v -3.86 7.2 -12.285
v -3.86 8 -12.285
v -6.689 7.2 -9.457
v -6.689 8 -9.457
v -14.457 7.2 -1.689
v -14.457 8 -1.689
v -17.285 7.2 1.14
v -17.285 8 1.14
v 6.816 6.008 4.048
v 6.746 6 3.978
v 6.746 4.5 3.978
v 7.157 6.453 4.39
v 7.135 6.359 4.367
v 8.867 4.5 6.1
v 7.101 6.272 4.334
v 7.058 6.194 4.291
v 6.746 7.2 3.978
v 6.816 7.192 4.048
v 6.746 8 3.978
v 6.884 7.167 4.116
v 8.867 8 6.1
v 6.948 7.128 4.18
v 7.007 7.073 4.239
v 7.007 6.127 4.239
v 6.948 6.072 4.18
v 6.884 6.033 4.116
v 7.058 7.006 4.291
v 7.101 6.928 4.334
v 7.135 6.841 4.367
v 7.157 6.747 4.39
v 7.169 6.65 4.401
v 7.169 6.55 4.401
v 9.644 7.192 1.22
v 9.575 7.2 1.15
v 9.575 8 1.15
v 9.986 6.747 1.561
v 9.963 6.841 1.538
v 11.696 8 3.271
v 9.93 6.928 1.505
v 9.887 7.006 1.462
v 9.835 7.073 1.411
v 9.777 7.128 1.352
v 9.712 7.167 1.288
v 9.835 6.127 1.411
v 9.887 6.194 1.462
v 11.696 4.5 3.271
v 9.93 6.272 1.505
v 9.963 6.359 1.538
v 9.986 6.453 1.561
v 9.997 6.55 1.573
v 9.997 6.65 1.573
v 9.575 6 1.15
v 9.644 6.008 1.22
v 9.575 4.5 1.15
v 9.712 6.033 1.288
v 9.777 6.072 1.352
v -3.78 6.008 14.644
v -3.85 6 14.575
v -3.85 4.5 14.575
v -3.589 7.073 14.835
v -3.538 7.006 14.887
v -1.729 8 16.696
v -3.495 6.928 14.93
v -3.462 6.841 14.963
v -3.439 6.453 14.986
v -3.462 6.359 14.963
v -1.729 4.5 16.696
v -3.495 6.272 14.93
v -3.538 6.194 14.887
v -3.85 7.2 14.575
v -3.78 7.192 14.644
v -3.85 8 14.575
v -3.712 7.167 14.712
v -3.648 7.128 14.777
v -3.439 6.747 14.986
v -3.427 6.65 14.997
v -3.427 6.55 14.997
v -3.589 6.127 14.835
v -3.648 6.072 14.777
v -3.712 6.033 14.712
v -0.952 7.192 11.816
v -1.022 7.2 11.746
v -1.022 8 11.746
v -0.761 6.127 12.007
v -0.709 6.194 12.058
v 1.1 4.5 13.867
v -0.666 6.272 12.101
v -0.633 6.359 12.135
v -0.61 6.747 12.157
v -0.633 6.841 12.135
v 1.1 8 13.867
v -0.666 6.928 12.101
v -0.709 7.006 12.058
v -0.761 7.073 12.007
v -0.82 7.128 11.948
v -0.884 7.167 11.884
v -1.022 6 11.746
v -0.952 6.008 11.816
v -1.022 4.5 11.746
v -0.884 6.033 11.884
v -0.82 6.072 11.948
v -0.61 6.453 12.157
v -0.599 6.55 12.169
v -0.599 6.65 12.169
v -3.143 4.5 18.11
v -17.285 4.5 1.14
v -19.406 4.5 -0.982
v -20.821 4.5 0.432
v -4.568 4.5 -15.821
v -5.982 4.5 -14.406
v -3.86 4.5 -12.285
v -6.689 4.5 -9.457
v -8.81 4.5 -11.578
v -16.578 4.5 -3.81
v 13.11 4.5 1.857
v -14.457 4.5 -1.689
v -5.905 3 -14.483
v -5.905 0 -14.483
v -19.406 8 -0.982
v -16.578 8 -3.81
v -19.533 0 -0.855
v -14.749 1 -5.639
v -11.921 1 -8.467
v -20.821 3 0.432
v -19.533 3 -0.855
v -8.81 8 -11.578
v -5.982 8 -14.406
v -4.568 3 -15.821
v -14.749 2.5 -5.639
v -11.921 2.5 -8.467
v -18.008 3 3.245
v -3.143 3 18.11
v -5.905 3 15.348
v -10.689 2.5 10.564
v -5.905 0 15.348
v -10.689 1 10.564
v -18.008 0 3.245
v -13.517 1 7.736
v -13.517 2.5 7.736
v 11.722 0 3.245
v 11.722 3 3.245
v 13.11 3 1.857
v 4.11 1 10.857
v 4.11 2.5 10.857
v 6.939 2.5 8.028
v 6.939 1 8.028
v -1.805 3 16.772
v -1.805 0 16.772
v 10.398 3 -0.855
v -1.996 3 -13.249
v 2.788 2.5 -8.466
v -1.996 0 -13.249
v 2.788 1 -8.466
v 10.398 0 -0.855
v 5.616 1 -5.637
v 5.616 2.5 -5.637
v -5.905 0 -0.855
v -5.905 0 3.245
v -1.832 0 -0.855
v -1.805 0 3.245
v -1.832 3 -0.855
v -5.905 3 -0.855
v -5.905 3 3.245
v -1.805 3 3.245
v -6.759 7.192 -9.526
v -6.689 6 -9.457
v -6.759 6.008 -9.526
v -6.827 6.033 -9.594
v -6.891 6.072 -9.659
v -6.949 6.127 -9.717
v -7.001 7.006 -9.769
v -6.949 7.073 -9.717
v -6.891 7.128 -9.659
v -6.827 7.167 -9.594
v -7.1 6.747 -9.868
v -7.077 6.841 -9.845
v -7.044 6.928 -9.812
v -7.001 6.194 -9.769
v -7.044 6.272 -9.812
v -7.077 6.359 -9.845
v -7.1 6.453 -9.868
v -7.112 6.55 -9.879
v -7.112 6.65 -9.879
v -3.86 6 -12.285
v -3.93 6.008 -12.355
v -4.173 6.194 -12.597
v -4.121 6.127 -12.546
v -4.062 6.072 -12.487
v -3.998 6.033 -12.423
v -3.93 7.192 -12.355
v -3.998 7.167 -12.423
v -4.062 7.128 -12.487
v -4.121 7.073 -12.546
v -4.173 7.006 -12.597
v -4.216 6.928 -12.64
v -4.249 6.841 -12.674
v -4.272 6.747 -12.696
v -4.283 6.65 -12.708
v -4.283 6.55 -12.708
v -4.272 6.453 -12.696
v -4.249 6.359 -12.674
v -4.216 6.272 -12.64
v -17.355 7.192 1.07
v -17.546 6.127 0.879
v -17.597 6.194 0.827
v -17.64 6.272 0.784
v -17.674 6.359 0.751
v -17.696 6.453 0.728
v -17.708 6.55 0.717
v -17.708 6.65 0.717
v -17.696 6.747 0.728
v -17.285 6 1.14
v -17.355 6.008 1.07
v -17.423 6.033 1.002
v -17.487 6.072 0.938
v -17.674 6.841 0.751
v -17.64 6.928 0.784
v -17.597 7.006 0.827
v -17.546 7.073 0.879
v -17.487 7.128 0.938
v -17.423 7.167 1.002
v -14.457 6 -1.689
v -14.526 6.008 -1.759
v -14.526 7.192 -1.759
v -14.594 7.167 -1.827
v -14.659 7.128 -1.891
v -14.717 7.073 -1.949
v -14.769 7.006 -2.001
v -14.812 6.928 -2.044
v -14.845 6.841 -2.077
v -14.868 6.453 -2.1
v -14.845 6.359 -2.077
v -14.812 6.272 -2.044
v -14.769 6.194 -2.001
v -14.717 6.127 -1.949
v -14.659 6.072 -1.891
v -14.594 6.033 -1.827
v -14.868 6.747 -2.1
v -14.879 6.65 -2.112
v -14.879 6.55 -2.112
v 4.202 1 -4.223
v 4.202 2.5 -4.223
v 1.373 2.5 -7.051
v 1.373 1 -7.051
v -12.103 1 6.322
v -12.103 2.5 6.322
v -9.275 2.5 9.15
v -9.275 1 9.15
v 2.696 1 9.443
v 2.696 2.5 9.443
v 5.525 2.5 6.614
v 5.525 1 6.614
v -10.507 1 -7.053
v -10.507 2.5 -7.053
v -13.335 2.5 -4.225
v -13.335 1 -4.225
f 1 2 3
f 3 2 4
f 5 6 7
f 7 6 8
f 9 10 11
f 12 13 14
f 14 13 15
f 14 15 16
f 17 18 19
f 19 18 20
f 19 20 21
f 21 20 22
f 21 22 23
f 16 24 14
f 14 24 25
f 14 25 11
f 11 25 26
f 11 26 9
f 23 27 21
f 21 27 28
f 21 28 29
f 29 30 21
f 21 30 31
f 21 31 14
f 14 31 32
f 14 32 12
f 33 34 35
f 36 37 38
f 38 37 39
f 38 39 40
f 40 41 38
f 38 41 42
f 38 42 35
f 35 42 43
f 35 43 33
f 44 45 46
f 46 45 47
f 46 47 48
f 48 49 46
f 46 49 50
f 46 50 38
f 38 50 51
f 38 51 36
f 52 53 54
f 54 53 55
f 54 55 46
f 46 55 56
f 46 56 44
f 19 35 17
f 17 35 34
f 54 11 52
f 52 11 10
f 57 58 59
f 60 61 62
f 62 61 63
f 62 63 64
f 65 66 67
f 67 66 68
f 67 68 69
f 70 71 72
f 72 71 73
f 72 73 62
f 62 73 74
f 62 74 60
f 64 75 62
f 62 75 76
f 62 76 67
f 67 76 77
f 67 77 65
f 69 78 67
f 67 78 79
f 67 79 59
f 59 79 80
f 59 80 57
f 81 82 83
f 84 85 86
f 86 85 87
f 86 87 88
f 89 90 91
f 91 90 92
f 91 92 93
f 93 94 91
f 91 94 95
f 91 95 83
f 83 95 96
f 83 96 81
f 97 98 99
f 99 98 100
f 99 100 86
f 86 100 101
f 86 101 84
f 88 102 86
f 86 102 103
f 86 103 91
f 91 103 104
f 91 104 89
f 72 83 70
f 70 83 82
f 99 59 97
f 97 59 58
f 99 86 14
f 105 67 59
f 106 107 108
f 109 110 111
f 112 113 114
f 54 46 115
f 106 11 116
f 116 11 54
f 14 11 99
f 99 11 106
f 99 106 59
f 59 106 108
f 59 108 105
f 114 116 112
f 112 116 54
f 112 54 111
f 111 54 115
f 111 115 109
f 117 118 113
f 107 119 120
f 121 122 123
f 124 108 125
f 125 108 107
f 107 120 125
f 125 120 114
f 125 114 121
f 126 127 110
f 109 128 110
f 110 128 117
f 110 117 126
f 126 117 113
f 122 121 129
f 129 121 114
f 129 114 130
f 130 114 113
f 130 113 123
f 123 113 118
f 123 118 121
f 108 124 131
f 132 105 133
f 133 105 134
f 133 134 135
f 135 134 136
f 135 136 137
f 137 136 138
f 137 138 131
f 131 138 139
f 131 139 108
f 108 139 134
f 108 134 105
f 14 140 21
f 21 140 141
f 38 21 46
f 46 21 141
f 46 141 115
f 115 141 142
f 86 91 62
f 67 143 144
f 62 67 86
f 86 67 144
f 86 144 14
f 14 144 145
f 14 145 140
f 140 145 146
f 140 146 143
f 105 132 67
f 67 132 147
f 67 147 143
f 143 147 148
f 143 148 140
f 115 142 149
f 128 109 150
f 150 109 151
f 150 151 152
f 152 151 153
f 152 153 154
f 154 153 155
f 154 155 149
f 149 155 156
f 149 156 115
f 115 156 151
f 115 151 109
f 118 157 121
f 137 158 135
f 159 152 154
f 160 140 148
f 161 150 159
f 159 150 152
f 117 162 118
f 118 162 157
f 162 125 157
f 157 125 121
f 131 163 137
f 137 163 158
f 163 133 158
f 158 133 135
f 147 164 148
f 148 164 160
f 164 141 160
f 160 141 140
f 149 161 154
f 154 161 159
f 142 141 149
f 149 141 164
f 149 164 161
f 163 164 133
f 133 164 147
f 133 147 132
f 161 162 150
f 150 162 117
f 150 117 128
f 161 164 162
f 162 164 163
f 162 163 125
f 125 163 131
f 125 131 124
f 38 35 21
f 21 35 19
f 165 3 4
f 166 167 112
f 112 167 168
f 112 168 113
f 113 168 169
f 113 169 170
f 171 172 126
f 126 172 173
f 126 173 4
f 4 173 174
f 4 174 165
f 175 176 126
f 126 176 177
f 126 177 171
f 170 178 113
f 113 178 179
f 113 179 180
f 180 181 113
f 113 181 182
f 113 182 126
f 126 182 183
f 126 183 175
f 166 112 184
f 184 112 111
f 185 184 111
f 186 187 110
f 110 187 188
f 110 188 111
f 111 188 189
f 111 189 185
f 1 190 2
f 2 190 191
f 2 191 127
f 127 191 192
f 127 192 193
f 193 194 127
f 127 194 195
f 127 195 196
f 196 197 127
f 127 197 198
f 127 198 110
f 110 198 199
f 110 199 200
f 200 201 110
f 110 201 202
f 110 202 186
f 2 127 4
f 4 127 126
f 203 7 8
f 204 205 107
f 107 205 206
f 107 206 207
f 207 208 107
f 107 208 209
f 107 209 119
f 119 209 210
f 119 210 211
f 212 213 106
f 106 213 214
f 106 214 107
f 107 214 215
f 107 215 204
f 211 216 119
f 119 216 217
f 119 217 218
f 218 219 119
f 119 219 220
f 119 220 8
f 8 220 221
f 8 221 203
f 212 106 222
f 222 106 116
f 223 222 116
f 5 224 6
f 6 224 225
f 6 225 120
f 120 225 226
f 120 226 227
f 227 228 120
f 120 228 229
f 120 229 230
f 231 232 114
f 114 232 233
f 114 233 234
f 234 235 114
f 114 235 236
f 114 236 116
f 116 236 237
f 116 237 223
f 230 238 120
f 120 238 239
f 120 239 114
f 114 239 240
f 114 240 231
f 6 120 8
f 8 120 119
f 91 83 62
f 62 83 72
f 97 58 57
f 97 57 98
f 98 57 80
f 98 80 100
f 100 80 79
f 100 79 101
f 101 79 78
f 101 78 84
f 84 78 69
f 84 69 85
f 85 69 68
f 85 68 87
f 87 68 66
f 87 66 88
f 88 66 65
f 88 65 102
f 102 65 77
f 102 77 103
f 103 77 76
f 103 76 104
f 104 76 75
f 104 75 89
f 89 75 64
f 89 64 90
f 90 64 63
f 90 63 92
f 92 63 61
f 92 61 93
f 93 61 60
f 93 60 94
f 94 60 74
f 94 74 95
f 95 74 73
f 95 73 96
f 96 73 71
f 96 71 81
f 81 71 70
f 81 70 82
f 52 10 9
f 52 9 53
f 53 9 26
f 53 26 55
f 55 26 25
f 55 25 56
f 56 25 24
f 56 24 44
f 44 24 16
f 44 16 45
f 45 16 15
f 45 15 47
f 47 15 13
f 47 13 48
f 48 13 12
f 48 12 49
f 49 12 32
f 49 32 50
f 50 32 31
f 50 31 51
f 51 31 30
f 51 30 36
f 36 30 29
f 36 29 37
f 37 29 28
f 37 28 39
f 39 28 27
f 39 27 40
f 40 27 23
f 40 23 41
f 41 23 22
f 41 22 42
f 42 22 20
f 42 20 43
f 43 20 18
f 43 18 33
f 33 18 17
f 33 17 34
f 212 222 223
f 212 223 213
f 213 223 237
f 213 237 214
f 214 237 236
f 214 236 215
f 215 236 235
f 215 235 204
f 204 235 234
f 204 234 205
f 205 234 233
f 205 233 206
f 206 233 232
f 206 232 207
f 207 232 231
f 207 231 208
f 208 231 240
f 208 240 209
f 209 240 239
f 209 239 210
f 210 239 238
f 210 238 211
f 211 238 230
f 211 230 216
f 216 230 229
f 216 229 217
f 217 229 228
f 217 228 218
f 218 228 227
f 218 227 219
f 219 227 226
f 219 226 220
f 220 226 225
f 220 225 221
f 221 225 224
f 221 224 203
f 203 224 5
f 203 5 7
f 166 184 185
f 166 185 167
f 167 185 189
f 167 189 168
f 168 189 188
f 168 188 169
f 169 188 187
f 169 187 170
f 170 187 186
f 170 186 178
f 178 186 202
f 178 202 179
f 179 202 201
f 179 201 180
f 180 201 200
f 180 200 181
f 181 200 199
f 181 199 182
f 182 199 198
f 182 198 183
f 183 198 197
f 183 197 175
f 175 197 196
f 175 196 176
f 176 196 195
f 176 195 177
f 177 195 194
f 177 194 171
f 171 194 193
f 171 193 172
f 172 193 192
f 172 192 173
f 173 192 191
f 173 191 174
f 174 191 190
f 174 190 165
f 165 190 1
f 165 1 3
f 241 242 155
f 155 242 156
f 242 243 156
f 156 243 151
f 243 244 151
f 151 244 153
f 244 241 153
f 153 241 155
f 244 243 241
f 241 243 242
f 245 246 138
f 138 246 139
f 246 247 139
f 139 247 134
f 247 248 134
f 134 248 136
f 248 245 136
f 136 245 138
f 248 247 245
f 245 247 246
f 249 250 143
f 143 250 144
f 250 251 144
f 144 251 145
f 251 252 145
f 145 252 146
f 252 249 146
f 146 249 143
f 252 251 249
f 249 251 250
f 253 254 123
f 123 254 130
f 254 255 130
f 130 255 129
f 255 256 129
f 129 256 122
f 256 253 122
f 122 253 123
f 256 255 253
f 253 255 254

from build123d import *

# Parameters (mm, degrees)
BOSS_EXTRUDE2_DEPTH     = 4.5
CUT_EXTRUDE1_DEPTH      = 3
BOSS_EXTRUDE3_DEPTH     = 3.5
CUT_EXTRUDE2_DEPTH      = 15.5
CUT_EXTRUDE2_DEPTH_BACK = 34.485281374
CUT_EXTRUDE5_DEPTH      = 34.485281374
SKETCH10_W              = 4
SKETCH10_H              = 1.5
CUT_EXTRUDE6_DEPTH      = 2
SKETCH11_W              = 4
SKETCH11_H              = 1.5
CUT_EXTRUDE7_DEPTH      = 2
SKETCH12_W              = 4
SKETCH12_H              = 1.5
CUT_EXTRUDE8_DEPTH      = 2
SKETCH13_W              = 4
SKETCH13_H              = 1.5
CUT_EXTRUDE9_DEPTH      = 2


with BuildPart() as part:
    # Sketch2 → Boss-Extrude2 (new body)
    with BuildSketch(Plane(origin=(0, 0, 0), x_dir=(1, 0, 0), z_dir=(0, 1, 0))):
        Polygon((-4.567545122, 15.820593449), (13.110124407, -1.85707608), (-3.14292392, -18.110124407), (-20.820593449, -0.432454878), align=None)
    extrude(amount=BOSS_EXTRUDE2_DEPTH)

    # Sketch4 → Cut-Extrude1 (cut)
    with BuildSketch(Plane(origin=(0, 0, 0), x_dir=(1, 0, 0), z_dir=(0, 1, 0))):
        Polygon((-18.008282848, -3.244765479), (-5.905234521, -3.244765479), (-5.905234521, -15.347813806), (-3.14292392, -18.110124407), (-1.805234521, -16.772435009), (-1.805234521, -3.244765479), (11.722435009, -3.244765479), (13.110124407, -1.85707608), (10.397813806, 0.855234521), (-1.832165216, 0.855234521), (-1.99606638, 13.249114707), (-4.567545122, 15.820593449), (-5.905234521, 14.482904051), (-5.905234521, 0.855234521), (-19.532904051, 0.855234521), (-20.820593449, -0.432454878), align=None)
    extrude(amount=CUT_EXTRUDE1_DEPTH, mode=Mode.SUBTRACT)

    # Sketch5 → Boss-Extrude3 (add)
    with BuildSketch(Plane(origin=(0, 4.5, 0), x_dir=(1, 0, 0), z_dir=(0, 1, 0))):
        Polygon((8.86748372, -6.099716767), (11.695910845, -3.271289643), (9.574590502, -1.149969299), (6.746163377, -3.978396424), align=None)
        Polygon((-6.688865466, 9.456632419), (-3.860438341, 12.285059543), (-5.981758685, 14.406379887), (-8.810185809, 11.577952762), align=None)
        Polygon((-17.285059543, -1.139561659), (-14.456632419, 1.688865466), (-16.577952762, 3.810185809), (-19.406379887, 0.981758685), align=None)
        Polygon((-1.728710357, -16.695910845), (1.099716767, -13.86748372), (-1.021603576, -11.746163377), (-3.850030701, -14.574590502), align=None)
    extrude(amount=BOSS_EXTRUDE3_DEPTH)

    # Sketch6 → Cut-Extrude2 (cut, two sides)
    with BuildSketch(Plane(origin=(4.212310601, 0, -4.212310601), x_dir=(-0.707106781, 0, -0.707106781), z_dir=(0.707106781, 0, -0.707106781))) as cut_extrude2_sk:
        with BuildLine():
            Line((-7.58340896, 6), (-7.58340896, 7.2))
            ThreePointArc((-7.58340896, 7.2), (-8.18340896, 6.6), (-7.58340896, 6))
        make_face()
    extrude(amount=CUT_EXTRUDE2_DEPTH, mode=Mode.SUBTRACT)
    extrude(cut_extrude2_sk.sketch, amount=-CUT_EXTRUDE2_DEPTH_BACK, mode=Mode.SUBTRACT)

    # Sketch7 → Cut-Extrude5 (cut, through all)
    with BuildSketch(Plane(origin=(4.212310601, 0, -4.212310601), x_dir=(-0.707106781, 0, -0.707106781), z_dir=(0.707106781, 0, -0.707106781))):
        with BuildLine():
            Line((11.41659104, 7.2), (11.41659104, 6))
            ThreePointArc((11.41659104, 6), (12.01659104, 6.6), (11.41659104, 7.2))
        make_face()
    extrude(amount=-CUT_EXTRUDE5_DEPTH, mode=Mode.SUBTRACT)

    # Sketch10 → Cut-Extrude6 (cut)
    with BuildSketch(Plane(origin=(5.626524164, 0, -5.626524164), x_dir=(-0.707106781, 0, -0.707106781), z_dir=(0.707106781, 0, -0.707106781))):
        with Locations((2.014970927, 1.75)):
            Rectangle(SKETCH10_W, SKETCH10_H)
    extrude(amount=-CUT_EXTRUDE6_DEPTH, mode=Mode.SUBTRACT)

    # Sketch11 → Cut-Extrude7 (cut)
    with BuildSketch(Plane(origin=(-10.626524164, 0, 10.626524164), x_dir=(0.707106781, 0, 0.707106781), z_dir=(-0.707106781, 0, 0.707106781))):
        with Locations((-2.088088155, 1.75)):
            Rectangle(SKETCH11_W, SKETCH11_H)
    extrude(amount=-CUT_EXTRUDE7_DEPTH, mode=Mode.SUBTRACT)

    # Sketch12 → Cut-Extrude8 (cut)
    with BuildSketch(Plane(origin=(7.483600244, 0, 7.483600244), x_dir=(0.707106781, 0, -0.707106781), z_dir=(0.707106781, 0, 0.707106781))):
        with Locations((-2.770382387, 1.75)):
            Rectangle(SKETCH12_W, SKETCH12_H)
    extrude(amount=-CUT_EXTRUDE8_DEPTH, mode=Mode.SUBTRACT)

    # Sketch13 → Cut-Extrude9 (cut)
    with BuildSketch(Plane(origin=(-10.194069286, 0, -10.194069286), x_dir=(-0.707106781, 0, 0.707106781), z_dir=(-0.707106781, 0, -0.707106781))):
        with Locations((4.442106781, 1.75)):
            Rectangle(SKETCH13_W, SKETCH13_H)
    extrude(amount=-CUT_EXTRUDE9_DEPTH, mode=Mode.SUBTRACT)


solid = part.part
